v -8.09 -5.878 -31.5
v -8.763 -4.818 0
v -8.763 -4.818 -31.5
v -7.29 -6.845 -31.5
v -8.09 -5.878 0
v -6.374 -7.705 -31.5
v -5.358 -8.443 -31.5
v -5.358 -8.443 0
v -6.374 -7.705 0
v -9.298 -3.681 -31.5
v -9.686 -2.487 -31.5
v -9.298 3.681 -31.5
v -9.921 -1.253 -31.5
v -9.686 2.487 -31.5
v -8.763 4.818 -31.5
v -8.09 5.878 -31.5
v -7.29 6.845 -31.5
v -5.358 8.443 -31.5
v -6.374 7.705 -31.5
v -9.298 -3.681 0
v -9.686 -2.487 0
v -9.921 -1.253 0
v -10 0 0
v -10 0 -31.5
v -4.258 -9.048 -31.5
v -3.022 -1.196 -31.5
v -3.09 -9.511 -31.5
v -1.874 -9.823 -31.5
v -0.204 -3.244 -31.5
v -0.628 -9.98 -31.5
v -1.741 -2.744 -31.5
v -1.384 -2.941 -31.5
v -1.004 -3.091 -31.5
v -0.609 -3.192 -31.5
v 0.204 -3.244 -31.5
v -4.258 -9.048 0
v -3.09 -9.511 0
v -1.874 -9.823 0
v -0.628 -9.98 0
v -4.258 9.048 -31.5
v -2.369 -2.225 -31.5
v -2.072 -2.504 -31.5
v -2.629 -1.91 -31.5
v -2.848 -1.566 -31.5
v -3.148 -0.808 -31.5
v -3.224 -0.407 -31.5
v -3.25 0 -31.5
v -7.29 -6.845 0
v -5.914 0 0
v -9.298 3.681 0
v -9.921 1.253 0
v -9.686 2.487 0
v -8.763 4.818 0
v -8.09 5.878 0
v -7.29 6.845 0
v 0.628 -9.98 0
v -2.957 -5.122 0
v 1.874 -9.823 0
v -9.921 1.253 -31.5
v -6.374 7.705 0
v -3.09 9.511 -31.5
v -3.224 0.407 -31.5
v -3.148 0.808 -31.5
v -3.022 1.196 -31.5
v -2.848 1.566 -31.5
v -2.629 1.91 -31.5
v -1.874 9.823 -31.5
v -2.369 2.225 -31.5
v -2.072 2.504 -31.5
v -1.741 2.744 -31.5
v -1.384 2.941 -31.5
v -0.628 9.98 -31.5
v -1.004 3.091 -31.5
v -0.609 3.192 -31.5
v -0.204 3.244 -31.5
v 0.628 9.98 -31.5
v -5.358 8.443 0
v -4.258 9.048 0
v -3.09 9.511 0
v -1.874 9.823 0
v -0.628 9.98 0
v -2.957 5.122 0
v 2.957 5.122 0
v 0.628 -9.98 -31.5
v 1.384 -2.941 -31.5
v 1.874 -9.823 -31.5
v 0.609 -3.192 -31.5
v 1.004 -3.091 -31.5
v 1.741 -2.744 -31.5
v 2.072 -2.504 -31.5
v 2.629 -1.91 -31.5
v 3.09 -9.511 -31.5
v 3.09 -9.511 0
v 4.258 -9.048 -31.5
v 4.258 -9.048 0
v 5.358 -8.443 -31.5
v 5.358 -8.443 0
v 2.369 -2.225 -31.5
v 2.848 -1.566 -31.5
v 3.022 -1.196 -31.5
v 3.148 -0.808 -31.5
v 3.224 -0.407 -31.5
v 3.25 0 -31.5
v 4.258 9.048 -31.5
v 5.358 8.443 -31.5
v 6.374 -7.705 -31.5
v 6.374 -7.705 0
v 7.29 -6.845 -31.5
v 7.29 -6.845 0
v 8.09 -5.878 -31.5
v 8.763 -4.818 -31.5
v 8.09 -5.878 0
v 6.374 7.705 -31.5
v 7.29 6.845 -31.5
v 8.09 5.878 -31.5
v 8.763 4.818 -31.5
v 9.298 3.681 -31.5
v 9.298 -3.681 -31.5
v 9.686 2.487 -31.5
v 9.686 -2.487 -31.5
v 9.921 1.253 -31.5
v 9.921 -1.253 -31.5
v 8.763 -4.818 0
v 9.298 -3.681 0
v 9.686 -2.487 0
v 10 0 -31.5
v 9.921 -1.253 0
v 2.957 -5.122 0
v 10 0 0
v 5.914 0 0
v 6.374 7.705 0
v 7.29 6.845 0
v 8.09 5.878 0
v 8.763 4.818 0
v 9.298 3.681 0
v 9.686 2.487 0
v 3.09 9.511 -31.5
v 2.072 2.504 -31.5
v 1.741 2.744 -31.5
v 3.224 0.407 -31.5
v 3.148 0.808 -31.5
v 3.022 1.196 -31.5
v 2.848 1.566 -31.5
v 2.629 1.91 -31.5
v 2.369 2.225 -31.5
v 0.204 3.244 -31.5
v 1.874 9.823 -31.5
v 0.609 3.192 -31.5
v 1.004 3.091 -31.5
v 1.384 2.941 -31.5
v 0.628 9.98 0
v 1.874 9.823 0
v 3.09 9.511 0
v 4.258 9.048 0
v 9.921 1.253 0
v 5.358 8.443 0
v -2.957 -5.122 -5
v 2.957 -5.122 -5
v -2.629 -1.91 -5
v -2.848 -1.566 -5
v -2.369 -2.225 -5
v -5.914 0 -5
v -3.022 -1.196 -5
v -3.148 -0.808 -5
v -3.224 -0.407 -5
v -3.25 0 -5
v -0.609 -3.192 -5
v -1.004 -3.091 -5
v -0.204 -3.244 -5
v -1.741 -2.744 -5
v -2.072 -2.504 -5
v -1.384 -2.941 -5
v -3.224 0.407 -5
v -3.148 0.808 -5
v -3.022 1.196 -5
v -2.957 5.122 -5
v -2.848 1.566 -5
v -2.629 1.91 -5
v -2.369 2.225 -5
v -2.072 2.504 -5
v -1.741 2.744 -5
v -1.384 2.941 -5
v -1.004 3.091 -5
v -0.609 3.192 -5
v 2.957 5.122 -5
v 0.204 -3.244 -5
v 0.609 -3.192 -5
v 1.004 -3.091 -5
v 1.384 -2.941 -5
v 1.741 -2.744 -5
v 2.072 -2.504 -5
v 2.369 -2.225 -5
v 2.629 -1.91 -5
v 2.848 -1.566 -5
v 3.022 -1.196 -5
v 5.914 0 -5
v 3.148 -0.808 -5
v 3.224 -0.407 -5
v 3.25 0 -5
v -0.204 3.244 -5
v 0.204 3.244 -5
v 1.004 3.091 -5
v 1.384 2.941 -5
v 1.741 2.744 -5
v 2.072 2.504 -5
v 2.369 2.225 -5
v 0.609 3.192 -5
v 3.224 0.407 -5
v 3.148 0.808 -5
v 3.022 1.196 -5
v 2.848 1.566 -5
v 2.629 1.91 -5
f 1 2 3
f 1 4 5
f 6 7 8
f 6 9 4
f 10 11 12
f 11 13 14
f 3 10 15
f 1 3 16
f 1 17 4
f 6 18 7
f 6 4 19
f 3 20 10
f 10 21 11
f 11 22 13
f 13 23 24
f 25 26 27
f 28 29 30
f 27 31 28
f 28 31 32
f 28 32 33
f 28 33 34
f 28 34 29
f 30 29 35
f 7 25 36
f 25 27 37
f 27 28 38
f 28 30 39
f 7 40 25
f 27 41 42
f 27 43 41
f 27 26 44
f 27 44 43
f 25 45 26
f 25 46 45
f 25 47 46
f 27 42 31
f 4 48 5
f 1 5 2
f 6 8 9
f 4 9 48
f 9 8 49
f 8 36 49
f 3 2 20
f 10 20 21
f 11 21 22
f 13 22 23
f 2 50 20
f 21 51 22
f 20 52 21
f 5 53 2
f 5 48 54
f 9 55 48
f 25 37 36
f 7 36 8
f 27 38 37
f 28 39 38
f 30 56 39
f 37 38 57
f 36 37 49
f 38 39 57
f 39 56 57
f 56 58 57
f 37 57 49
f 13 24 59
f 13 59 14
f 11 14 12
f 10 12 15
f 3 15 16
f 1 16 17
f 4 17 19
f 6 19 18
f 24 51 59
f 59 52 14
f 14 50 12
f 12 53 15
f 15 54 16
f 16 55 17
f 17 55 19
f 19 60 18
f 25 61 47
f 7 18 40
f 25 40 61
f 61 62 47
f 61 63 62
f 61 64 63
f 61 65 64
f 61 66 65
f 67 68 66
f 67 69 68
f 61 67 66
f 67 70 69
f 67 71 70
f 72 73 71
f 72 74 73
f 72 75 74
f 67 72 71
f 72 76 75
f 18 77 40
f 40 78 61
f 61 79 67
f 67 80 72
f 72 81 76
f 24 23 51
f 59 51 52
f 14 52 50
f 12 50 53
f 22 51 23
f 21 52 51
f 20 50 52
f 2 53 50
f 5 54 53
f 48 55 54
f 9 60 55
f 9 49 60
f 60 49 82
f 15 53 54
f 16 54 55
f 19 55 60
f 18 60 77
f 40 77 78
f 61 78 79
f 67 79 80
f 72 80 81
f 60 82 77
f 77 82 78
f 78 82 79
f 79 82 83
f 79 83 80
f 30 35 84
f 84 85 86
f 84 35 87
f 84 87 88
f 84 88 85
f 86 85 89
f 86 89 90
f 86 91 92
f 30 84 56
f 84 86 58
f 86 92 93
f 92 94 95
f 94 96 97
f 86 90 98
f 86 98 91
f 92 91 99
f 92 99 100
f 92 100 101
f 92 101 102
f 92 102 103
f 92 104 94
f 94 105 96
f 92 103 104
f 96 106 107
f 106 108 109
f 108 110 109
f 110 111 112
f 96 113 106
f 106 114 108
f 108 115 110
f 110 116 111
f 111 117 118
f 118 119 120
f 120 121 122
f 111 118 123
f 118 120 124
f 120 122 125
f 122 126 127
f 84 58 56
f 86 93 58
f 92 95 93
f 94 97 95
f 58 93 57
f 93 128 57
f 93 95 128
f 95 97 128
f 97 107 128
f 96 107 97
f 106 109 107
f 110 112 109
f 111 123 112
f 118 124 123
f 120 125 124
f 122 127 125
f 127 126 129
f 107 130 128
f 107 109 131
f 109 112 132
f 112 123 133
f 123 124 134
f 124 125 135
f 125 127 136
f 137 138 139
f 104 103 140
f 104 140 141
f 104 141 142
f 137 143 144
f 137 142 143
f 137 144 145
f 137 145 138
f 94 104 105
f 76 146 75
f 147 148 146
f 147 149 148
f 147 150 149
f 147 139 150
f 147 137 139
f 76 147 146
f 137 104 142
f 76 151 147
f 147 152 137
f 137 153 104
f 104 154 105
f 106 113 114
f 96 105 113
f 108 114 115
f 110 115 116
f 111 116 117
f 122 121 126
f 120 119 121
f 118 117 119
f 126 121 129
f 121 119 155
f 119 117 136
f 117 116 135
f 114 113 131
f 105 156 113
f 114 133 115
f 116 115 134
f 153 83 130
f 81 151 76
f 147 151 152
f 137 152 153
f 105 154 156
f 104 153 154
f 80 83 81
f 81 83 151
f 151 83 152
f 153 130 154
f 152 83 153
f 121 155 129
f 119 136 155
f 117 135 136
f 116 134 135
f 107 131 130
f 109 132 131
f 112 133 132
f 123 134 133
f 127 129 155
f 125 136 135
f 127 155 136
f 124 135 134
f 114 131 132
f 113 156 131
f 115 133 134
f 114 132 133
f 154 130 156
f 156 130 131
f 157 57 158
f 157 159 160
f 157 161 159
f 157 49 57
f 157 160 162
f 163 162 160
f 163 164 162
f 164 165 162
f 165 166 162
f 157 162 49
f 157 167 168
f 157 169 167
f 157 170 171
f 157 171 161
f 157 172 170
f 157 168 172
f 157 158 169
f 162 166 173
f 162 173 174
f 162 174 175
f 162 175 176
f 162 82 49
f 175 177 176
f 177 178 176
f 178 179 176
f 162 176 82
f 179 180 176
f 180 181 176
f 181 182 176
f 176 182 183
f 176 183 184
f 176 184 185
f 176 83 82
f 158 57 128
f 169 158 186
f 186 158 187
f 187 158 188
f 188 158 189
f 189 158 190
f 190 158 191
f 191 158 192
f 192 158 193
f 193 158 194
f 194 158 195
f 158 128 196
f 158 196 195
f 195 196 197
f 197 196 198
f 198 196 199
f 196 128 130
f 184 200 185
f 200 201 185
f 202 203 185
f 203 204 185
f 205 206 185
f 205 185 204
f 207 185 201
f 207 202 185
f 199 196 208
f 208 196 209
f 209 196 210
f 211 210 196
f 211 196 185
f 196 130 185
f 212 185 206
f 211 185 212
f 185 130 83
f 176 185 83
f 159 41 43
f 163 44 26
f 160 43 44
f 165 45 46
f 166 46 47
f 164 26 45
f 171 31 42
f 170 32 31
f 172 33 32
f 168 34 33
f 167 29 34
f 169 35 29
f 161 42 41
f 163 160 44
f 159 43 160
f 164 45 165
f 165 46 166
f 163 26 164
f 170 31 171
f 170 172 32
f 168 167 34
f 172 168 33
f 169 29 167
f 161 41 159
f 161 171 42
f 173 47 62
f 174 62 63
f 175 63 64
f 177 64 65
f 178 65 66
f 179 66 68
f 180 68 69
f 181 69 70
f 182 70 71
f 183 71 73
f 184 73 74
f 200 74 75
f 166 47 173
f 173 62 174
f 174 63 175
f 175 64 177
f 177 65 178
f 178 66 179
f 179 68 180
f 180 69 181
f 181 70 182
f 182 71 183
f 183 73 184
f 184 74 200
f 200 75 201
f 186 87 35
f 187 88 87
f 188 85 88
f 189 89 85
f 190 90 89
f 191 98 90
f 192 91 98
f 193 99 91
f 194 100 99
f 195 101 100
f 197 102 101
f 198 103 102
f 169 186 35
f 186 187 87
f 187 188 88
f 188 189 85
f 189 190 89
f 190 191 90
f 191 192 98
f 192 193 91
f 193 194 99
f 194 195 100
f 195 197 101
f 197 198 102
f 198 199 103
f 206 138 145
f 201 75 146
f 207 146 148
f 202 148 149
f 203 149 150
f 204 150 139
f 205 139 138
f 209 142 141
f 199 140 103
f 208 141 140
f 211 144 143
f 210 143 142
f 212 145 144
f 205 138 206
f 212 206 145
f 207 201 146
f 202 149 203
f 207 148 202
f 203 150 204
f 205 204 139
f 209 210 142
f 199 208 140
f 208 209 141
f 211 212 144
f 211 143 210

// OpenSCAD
$fn = 50;

difference() {
	union() {
		translate(v = [0, 0, -31.5]) {
			cylinder(h = 31.5, r = 10.0);
		}
		#translate(v = [0, 0, -33.0]) {
			cylinder(h = 33, r = 2.875);
		}
	}
	union() {
		translate(v = [0, 0, 0]) {
			rotate(a = [0, 0, 0]) {
				difference() {
					union() {
						translate(v = [0, 0, -5]) {
							linear_extrude(height = 5) {
								polygon(points = [[5.914249999999999, 0.0], [2.957125, 5.1218907443321156], [-2.9571249999999982, 5.1218907443321156], [-5.914249999999999, 7.242867331857232e-16], [-2.9571250000000022, -5.121890744332115], [2.9571249999999956, -5.121890744332118]]);
							}
						}
					}
					union();
				}
			}
		}
		#translate(v = [0, 0, -100.0]) {
			cylinder(h = 200, r = 3.25);
		}
	}
}
